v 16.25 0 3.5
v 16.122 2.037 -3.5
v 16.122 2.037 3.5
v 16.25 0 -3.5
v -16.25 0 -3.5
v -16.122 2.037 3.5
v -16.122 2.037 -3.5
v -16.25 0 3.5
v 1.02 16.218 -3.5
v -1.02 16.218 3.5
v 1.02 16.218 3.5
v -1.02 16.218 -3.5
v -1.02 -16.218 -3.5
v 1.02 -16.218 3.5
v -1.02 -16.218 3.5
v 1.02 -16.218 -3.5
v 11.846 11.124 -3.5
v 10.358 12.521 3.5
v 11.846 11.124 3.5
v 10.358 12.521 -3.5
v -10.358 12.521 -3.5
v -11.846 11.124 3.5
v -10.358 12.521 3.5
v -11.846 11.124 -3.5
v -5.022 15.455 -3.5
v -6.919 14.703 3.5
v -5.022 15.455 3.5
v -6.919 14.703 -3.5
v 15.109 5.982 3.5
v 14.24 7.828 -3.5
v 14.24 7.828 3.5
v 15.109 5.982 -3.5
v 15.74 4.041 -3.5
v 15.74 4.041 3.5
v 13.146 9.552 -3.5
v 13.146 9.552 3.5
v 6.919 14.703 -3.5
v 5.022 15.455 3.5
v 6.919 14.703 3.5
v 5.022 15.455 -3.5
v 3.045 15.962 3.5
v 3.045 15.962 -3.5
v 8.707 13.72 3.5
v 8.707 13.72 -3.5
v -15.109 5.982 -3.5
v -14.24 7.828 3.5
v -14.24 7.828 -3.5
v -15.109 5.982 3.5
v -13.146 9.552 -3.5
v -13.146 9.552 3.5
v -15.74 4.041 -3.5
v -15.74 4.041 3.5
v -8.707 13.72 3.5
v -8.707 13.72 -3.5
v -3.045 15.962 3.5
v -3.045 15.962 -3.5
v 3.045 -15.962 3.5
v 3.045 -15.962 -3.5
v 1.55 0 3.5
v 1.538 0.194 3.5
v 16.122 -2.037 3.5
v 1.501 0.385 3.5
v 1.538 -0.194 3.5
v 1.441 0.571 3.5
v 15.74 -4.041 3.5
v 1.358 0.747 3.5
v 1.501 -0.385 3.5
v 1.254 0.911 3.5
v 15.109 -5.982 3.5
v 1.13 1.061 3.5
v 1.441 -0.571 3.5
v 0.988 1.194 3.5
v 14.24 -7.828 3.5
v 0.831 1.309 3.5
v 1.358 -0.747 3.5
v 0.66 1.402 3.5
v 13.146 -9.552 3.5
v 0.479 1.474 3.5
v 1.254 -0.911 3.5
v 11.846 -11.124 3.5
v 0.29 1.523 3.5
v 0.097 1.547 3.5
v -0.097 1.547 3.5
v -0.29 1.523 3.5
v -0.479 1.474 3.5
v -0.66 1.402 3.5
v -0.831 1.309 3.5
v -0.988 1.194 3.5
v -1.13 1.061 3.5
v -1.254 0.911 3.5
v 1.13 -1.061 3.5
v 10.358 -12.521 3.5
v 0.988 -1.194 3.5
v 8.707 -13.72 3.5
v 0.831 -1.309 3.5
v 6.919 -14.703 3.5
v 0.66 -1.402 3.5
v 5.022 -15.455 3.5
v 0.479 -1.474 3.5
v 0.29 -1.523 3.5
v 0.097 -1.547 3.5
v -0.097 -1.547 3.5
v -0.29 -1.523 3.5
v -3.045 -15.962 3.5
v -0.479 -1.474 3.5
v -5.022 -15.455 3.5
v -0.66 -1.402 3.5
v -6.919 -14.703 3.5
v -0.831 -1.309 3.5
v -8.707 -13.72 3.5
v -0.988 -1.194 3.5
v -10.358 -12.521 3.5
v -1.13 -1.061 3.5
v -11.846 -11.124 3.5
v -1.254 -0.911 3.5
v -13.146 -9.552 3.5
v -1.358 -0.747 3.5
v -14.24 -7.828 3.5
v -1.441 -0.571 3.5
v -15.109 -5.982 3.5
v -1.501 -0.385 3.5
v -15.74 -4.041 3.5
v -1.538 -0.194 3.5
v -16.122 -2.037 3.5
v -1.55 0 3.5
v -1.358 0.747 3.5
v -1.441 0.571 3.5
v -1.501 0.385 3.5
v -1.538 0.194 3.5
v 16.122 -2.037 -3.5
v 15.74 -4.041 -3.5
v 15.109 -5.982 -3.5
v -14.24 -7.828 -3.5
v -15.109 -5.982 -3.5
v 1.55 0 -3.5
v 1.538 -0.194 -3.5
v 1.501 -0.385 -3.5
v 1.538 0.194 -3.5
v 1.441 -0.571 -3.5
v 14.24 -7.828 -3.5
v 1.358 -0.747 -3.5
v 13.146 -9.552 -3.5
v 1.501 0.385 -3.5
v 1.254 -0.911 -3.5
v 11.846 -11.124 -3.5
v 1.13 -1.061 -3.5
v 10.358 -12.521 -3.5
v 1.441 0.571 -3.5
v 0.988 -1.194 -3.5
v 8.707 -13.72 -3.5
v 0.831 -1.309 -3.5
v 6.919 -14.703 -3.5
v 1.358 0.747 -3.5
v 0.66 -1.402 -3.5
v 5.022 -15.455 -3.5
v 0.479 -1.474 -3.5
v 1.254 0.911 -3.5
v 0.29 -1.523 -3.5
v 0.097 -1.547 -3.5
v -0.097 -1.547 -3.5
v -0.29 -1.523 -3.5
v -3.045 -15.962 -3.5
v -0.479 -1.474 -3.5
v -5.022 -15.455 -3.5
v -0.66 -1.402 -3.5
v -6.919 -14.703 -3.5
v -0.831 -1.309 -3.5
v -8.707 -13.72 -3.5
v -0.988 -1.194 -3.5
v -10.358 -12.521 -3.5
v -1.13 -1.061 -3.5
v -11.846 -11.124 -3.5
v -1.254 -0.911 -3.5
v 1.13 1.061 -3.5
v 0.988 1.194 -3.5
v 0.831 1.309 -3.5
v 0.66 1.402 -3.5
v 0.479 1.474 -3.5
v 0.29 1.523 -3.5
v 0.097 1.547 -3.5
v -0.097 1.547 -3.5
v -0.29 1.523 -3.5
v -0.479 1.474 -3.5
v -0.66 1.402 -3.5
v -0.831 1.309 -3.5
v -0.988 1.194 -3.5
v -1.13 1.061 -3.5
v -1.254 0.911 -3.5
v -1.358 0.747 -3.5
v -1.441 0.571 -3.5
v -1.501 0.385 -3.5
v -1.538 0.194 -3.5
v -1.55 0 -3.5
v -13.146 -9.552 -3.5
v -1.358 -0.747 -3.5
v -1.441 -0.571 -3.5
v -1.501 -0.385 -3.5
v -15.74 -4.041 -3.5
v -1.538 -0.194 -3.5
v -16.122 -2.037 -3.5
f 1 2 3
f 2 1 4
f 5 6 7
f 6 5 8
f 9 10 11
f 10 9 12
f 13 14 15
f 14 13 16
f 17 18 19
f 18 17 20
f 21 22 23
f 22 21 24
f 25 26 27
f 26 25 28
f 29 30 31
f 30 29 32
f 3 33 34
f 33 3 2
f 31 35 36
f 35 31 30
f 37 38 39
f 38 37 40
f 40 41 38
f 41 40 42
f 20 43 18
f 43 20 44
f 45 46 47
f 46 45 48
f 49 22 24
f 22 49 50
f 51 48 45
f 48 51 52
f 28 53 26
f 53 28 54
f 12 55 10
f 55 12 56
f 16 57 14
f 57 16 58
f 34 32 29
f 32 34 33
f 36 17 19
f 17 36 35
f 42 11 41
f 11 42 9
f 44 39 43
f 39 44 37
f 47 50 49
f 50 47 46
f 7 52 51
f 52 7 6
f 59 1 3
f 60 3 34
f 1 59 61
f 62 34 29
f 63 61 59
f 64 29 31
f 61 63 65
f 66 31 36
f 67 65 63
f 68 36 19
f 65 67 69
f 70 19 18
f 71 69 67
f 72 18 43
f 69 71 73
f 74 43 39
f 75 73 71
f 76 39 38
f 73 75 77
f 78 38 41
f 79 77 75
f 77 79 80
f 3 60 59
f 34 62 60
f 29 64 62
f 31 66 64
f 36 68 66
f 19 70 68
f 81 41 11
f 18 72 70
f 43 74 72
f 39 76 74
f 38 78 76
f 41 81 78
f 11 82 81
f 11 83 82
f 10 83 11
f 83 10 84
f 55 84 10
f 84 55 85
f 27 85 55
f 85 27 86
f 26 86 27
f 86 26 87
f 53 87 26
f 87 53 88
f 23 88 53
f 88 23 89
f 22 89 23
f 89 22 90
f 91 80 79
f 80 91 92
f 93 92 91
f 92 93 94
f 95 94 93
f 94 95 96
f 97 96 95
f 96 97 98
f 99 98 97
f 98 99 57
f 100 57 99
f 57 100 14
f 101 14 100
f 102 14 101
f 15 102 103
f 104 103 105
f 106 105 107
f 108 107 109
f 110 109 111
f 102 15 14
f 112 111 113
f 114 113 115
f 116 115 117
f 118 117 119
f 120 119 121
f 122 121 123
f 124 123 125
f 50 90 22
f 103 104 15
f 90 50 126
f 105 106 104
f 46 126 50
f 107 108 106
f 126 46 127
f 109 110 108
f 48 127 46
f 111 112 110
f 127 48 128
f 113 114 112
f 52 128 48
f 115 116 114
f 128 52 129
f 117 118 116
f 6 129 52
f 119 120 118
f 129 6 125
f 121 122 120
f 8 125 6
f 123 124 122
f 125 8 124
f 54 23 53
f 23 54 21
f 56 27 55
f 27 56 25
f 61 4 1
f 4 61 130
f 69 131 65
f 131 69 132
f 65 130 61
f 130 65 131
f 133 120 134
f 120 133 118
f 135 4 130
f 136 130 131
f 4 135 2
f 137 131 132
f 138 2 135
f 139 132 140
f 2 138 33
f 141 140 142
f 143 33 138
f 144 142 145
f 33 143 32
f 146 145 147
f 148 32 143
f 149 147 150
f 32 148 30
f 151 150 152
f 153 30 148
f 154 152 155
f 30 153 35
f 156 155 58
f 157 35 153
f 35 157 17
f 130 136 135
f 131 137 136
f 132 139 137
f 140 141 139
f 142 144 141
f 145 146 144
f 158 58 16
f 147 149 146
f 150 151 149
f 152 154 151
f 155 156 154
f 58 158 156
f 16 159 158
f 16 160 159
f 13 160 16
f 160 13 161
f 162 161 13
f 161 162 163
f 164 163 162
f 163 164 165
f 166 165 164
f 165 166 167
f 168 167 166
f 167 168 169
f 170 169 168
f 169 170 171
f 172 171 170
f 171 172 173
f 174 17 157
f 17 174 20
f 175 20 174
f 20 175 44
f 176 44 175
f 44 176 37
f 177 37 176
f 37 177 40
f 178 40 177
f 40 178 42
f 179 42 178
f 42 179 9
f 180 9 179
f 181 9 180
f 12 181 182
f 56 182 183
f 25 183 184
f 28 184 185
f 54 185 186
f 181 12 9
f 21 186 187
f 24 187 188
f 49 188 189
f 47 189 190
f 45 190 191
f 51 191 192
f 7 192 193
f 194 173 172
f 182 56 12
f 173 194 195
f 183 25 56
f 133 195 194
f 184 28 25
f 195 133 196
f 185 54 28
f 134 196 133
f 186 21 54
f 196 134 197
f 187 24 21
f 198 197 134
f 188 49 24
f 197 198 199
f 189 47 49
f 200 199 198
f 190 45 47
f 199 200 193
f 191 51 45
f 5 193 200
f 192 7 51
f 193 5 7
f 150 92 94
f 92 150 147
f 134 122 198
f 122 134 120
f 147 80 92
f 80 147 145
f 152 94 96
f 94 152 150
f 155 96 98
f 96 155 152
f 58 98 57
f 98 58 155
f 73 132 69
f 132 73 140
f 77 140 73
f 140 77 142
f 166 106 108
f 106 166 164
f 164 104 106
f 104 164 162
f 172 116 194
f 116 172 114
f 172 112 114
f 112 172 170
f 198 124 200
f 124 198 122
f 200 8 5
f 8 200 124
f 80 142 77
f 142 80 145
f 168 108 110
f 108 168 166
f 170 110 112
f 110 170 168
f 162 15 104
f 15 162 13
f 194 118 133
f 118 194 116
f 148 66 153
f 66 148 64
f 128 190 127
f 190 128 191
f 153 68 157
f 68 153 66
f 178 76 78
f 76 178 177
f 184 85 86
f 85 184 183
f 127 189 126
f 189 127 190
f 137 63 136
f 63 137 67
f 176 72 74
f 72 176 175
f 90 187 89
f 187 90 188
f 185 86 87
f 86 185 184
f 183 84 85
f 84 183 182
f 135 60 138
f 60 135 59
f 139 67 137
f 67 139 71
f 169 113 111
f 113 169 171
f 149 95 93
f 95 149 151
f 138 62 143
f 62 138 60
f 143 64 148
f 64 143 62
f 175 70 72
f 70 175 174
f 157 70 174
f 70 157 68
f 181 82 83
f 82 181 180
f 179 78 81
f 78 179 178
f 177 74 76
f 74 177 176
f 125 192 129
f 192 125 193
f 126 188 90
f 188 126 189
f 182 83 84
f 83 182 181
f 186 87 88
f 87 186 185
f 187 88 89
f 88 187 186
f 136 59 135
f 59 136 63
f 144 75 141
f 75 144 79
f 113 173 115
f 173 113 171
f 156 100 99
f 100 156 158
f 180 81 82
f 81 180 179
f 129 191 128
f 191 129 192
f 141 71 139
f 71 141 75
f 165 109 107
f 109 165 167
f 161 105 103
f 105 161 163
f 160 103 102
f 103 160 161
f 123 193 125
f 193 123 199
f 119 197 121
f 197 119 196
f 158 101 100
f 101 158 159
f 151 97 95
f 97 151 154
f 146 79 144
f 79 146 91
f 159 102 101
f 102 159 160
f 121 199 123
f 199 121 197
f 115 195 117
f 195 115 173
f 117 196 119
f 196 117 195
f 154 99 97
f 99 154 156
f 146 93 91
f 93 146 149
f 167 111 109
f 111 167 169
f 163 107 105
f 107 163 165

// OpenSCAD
$fn = 50;


difference() {
	union() {
		translate(v = [0, 0, -3.5000000000]) {
			cylinder(h = 7, r = 16.2500000000);
		}
	}
	union() {
		translate(v = [0, 0, -100.0000000000]) {
			cylinder(h = 200, r = 1.5500000000);
		}
	}
}
